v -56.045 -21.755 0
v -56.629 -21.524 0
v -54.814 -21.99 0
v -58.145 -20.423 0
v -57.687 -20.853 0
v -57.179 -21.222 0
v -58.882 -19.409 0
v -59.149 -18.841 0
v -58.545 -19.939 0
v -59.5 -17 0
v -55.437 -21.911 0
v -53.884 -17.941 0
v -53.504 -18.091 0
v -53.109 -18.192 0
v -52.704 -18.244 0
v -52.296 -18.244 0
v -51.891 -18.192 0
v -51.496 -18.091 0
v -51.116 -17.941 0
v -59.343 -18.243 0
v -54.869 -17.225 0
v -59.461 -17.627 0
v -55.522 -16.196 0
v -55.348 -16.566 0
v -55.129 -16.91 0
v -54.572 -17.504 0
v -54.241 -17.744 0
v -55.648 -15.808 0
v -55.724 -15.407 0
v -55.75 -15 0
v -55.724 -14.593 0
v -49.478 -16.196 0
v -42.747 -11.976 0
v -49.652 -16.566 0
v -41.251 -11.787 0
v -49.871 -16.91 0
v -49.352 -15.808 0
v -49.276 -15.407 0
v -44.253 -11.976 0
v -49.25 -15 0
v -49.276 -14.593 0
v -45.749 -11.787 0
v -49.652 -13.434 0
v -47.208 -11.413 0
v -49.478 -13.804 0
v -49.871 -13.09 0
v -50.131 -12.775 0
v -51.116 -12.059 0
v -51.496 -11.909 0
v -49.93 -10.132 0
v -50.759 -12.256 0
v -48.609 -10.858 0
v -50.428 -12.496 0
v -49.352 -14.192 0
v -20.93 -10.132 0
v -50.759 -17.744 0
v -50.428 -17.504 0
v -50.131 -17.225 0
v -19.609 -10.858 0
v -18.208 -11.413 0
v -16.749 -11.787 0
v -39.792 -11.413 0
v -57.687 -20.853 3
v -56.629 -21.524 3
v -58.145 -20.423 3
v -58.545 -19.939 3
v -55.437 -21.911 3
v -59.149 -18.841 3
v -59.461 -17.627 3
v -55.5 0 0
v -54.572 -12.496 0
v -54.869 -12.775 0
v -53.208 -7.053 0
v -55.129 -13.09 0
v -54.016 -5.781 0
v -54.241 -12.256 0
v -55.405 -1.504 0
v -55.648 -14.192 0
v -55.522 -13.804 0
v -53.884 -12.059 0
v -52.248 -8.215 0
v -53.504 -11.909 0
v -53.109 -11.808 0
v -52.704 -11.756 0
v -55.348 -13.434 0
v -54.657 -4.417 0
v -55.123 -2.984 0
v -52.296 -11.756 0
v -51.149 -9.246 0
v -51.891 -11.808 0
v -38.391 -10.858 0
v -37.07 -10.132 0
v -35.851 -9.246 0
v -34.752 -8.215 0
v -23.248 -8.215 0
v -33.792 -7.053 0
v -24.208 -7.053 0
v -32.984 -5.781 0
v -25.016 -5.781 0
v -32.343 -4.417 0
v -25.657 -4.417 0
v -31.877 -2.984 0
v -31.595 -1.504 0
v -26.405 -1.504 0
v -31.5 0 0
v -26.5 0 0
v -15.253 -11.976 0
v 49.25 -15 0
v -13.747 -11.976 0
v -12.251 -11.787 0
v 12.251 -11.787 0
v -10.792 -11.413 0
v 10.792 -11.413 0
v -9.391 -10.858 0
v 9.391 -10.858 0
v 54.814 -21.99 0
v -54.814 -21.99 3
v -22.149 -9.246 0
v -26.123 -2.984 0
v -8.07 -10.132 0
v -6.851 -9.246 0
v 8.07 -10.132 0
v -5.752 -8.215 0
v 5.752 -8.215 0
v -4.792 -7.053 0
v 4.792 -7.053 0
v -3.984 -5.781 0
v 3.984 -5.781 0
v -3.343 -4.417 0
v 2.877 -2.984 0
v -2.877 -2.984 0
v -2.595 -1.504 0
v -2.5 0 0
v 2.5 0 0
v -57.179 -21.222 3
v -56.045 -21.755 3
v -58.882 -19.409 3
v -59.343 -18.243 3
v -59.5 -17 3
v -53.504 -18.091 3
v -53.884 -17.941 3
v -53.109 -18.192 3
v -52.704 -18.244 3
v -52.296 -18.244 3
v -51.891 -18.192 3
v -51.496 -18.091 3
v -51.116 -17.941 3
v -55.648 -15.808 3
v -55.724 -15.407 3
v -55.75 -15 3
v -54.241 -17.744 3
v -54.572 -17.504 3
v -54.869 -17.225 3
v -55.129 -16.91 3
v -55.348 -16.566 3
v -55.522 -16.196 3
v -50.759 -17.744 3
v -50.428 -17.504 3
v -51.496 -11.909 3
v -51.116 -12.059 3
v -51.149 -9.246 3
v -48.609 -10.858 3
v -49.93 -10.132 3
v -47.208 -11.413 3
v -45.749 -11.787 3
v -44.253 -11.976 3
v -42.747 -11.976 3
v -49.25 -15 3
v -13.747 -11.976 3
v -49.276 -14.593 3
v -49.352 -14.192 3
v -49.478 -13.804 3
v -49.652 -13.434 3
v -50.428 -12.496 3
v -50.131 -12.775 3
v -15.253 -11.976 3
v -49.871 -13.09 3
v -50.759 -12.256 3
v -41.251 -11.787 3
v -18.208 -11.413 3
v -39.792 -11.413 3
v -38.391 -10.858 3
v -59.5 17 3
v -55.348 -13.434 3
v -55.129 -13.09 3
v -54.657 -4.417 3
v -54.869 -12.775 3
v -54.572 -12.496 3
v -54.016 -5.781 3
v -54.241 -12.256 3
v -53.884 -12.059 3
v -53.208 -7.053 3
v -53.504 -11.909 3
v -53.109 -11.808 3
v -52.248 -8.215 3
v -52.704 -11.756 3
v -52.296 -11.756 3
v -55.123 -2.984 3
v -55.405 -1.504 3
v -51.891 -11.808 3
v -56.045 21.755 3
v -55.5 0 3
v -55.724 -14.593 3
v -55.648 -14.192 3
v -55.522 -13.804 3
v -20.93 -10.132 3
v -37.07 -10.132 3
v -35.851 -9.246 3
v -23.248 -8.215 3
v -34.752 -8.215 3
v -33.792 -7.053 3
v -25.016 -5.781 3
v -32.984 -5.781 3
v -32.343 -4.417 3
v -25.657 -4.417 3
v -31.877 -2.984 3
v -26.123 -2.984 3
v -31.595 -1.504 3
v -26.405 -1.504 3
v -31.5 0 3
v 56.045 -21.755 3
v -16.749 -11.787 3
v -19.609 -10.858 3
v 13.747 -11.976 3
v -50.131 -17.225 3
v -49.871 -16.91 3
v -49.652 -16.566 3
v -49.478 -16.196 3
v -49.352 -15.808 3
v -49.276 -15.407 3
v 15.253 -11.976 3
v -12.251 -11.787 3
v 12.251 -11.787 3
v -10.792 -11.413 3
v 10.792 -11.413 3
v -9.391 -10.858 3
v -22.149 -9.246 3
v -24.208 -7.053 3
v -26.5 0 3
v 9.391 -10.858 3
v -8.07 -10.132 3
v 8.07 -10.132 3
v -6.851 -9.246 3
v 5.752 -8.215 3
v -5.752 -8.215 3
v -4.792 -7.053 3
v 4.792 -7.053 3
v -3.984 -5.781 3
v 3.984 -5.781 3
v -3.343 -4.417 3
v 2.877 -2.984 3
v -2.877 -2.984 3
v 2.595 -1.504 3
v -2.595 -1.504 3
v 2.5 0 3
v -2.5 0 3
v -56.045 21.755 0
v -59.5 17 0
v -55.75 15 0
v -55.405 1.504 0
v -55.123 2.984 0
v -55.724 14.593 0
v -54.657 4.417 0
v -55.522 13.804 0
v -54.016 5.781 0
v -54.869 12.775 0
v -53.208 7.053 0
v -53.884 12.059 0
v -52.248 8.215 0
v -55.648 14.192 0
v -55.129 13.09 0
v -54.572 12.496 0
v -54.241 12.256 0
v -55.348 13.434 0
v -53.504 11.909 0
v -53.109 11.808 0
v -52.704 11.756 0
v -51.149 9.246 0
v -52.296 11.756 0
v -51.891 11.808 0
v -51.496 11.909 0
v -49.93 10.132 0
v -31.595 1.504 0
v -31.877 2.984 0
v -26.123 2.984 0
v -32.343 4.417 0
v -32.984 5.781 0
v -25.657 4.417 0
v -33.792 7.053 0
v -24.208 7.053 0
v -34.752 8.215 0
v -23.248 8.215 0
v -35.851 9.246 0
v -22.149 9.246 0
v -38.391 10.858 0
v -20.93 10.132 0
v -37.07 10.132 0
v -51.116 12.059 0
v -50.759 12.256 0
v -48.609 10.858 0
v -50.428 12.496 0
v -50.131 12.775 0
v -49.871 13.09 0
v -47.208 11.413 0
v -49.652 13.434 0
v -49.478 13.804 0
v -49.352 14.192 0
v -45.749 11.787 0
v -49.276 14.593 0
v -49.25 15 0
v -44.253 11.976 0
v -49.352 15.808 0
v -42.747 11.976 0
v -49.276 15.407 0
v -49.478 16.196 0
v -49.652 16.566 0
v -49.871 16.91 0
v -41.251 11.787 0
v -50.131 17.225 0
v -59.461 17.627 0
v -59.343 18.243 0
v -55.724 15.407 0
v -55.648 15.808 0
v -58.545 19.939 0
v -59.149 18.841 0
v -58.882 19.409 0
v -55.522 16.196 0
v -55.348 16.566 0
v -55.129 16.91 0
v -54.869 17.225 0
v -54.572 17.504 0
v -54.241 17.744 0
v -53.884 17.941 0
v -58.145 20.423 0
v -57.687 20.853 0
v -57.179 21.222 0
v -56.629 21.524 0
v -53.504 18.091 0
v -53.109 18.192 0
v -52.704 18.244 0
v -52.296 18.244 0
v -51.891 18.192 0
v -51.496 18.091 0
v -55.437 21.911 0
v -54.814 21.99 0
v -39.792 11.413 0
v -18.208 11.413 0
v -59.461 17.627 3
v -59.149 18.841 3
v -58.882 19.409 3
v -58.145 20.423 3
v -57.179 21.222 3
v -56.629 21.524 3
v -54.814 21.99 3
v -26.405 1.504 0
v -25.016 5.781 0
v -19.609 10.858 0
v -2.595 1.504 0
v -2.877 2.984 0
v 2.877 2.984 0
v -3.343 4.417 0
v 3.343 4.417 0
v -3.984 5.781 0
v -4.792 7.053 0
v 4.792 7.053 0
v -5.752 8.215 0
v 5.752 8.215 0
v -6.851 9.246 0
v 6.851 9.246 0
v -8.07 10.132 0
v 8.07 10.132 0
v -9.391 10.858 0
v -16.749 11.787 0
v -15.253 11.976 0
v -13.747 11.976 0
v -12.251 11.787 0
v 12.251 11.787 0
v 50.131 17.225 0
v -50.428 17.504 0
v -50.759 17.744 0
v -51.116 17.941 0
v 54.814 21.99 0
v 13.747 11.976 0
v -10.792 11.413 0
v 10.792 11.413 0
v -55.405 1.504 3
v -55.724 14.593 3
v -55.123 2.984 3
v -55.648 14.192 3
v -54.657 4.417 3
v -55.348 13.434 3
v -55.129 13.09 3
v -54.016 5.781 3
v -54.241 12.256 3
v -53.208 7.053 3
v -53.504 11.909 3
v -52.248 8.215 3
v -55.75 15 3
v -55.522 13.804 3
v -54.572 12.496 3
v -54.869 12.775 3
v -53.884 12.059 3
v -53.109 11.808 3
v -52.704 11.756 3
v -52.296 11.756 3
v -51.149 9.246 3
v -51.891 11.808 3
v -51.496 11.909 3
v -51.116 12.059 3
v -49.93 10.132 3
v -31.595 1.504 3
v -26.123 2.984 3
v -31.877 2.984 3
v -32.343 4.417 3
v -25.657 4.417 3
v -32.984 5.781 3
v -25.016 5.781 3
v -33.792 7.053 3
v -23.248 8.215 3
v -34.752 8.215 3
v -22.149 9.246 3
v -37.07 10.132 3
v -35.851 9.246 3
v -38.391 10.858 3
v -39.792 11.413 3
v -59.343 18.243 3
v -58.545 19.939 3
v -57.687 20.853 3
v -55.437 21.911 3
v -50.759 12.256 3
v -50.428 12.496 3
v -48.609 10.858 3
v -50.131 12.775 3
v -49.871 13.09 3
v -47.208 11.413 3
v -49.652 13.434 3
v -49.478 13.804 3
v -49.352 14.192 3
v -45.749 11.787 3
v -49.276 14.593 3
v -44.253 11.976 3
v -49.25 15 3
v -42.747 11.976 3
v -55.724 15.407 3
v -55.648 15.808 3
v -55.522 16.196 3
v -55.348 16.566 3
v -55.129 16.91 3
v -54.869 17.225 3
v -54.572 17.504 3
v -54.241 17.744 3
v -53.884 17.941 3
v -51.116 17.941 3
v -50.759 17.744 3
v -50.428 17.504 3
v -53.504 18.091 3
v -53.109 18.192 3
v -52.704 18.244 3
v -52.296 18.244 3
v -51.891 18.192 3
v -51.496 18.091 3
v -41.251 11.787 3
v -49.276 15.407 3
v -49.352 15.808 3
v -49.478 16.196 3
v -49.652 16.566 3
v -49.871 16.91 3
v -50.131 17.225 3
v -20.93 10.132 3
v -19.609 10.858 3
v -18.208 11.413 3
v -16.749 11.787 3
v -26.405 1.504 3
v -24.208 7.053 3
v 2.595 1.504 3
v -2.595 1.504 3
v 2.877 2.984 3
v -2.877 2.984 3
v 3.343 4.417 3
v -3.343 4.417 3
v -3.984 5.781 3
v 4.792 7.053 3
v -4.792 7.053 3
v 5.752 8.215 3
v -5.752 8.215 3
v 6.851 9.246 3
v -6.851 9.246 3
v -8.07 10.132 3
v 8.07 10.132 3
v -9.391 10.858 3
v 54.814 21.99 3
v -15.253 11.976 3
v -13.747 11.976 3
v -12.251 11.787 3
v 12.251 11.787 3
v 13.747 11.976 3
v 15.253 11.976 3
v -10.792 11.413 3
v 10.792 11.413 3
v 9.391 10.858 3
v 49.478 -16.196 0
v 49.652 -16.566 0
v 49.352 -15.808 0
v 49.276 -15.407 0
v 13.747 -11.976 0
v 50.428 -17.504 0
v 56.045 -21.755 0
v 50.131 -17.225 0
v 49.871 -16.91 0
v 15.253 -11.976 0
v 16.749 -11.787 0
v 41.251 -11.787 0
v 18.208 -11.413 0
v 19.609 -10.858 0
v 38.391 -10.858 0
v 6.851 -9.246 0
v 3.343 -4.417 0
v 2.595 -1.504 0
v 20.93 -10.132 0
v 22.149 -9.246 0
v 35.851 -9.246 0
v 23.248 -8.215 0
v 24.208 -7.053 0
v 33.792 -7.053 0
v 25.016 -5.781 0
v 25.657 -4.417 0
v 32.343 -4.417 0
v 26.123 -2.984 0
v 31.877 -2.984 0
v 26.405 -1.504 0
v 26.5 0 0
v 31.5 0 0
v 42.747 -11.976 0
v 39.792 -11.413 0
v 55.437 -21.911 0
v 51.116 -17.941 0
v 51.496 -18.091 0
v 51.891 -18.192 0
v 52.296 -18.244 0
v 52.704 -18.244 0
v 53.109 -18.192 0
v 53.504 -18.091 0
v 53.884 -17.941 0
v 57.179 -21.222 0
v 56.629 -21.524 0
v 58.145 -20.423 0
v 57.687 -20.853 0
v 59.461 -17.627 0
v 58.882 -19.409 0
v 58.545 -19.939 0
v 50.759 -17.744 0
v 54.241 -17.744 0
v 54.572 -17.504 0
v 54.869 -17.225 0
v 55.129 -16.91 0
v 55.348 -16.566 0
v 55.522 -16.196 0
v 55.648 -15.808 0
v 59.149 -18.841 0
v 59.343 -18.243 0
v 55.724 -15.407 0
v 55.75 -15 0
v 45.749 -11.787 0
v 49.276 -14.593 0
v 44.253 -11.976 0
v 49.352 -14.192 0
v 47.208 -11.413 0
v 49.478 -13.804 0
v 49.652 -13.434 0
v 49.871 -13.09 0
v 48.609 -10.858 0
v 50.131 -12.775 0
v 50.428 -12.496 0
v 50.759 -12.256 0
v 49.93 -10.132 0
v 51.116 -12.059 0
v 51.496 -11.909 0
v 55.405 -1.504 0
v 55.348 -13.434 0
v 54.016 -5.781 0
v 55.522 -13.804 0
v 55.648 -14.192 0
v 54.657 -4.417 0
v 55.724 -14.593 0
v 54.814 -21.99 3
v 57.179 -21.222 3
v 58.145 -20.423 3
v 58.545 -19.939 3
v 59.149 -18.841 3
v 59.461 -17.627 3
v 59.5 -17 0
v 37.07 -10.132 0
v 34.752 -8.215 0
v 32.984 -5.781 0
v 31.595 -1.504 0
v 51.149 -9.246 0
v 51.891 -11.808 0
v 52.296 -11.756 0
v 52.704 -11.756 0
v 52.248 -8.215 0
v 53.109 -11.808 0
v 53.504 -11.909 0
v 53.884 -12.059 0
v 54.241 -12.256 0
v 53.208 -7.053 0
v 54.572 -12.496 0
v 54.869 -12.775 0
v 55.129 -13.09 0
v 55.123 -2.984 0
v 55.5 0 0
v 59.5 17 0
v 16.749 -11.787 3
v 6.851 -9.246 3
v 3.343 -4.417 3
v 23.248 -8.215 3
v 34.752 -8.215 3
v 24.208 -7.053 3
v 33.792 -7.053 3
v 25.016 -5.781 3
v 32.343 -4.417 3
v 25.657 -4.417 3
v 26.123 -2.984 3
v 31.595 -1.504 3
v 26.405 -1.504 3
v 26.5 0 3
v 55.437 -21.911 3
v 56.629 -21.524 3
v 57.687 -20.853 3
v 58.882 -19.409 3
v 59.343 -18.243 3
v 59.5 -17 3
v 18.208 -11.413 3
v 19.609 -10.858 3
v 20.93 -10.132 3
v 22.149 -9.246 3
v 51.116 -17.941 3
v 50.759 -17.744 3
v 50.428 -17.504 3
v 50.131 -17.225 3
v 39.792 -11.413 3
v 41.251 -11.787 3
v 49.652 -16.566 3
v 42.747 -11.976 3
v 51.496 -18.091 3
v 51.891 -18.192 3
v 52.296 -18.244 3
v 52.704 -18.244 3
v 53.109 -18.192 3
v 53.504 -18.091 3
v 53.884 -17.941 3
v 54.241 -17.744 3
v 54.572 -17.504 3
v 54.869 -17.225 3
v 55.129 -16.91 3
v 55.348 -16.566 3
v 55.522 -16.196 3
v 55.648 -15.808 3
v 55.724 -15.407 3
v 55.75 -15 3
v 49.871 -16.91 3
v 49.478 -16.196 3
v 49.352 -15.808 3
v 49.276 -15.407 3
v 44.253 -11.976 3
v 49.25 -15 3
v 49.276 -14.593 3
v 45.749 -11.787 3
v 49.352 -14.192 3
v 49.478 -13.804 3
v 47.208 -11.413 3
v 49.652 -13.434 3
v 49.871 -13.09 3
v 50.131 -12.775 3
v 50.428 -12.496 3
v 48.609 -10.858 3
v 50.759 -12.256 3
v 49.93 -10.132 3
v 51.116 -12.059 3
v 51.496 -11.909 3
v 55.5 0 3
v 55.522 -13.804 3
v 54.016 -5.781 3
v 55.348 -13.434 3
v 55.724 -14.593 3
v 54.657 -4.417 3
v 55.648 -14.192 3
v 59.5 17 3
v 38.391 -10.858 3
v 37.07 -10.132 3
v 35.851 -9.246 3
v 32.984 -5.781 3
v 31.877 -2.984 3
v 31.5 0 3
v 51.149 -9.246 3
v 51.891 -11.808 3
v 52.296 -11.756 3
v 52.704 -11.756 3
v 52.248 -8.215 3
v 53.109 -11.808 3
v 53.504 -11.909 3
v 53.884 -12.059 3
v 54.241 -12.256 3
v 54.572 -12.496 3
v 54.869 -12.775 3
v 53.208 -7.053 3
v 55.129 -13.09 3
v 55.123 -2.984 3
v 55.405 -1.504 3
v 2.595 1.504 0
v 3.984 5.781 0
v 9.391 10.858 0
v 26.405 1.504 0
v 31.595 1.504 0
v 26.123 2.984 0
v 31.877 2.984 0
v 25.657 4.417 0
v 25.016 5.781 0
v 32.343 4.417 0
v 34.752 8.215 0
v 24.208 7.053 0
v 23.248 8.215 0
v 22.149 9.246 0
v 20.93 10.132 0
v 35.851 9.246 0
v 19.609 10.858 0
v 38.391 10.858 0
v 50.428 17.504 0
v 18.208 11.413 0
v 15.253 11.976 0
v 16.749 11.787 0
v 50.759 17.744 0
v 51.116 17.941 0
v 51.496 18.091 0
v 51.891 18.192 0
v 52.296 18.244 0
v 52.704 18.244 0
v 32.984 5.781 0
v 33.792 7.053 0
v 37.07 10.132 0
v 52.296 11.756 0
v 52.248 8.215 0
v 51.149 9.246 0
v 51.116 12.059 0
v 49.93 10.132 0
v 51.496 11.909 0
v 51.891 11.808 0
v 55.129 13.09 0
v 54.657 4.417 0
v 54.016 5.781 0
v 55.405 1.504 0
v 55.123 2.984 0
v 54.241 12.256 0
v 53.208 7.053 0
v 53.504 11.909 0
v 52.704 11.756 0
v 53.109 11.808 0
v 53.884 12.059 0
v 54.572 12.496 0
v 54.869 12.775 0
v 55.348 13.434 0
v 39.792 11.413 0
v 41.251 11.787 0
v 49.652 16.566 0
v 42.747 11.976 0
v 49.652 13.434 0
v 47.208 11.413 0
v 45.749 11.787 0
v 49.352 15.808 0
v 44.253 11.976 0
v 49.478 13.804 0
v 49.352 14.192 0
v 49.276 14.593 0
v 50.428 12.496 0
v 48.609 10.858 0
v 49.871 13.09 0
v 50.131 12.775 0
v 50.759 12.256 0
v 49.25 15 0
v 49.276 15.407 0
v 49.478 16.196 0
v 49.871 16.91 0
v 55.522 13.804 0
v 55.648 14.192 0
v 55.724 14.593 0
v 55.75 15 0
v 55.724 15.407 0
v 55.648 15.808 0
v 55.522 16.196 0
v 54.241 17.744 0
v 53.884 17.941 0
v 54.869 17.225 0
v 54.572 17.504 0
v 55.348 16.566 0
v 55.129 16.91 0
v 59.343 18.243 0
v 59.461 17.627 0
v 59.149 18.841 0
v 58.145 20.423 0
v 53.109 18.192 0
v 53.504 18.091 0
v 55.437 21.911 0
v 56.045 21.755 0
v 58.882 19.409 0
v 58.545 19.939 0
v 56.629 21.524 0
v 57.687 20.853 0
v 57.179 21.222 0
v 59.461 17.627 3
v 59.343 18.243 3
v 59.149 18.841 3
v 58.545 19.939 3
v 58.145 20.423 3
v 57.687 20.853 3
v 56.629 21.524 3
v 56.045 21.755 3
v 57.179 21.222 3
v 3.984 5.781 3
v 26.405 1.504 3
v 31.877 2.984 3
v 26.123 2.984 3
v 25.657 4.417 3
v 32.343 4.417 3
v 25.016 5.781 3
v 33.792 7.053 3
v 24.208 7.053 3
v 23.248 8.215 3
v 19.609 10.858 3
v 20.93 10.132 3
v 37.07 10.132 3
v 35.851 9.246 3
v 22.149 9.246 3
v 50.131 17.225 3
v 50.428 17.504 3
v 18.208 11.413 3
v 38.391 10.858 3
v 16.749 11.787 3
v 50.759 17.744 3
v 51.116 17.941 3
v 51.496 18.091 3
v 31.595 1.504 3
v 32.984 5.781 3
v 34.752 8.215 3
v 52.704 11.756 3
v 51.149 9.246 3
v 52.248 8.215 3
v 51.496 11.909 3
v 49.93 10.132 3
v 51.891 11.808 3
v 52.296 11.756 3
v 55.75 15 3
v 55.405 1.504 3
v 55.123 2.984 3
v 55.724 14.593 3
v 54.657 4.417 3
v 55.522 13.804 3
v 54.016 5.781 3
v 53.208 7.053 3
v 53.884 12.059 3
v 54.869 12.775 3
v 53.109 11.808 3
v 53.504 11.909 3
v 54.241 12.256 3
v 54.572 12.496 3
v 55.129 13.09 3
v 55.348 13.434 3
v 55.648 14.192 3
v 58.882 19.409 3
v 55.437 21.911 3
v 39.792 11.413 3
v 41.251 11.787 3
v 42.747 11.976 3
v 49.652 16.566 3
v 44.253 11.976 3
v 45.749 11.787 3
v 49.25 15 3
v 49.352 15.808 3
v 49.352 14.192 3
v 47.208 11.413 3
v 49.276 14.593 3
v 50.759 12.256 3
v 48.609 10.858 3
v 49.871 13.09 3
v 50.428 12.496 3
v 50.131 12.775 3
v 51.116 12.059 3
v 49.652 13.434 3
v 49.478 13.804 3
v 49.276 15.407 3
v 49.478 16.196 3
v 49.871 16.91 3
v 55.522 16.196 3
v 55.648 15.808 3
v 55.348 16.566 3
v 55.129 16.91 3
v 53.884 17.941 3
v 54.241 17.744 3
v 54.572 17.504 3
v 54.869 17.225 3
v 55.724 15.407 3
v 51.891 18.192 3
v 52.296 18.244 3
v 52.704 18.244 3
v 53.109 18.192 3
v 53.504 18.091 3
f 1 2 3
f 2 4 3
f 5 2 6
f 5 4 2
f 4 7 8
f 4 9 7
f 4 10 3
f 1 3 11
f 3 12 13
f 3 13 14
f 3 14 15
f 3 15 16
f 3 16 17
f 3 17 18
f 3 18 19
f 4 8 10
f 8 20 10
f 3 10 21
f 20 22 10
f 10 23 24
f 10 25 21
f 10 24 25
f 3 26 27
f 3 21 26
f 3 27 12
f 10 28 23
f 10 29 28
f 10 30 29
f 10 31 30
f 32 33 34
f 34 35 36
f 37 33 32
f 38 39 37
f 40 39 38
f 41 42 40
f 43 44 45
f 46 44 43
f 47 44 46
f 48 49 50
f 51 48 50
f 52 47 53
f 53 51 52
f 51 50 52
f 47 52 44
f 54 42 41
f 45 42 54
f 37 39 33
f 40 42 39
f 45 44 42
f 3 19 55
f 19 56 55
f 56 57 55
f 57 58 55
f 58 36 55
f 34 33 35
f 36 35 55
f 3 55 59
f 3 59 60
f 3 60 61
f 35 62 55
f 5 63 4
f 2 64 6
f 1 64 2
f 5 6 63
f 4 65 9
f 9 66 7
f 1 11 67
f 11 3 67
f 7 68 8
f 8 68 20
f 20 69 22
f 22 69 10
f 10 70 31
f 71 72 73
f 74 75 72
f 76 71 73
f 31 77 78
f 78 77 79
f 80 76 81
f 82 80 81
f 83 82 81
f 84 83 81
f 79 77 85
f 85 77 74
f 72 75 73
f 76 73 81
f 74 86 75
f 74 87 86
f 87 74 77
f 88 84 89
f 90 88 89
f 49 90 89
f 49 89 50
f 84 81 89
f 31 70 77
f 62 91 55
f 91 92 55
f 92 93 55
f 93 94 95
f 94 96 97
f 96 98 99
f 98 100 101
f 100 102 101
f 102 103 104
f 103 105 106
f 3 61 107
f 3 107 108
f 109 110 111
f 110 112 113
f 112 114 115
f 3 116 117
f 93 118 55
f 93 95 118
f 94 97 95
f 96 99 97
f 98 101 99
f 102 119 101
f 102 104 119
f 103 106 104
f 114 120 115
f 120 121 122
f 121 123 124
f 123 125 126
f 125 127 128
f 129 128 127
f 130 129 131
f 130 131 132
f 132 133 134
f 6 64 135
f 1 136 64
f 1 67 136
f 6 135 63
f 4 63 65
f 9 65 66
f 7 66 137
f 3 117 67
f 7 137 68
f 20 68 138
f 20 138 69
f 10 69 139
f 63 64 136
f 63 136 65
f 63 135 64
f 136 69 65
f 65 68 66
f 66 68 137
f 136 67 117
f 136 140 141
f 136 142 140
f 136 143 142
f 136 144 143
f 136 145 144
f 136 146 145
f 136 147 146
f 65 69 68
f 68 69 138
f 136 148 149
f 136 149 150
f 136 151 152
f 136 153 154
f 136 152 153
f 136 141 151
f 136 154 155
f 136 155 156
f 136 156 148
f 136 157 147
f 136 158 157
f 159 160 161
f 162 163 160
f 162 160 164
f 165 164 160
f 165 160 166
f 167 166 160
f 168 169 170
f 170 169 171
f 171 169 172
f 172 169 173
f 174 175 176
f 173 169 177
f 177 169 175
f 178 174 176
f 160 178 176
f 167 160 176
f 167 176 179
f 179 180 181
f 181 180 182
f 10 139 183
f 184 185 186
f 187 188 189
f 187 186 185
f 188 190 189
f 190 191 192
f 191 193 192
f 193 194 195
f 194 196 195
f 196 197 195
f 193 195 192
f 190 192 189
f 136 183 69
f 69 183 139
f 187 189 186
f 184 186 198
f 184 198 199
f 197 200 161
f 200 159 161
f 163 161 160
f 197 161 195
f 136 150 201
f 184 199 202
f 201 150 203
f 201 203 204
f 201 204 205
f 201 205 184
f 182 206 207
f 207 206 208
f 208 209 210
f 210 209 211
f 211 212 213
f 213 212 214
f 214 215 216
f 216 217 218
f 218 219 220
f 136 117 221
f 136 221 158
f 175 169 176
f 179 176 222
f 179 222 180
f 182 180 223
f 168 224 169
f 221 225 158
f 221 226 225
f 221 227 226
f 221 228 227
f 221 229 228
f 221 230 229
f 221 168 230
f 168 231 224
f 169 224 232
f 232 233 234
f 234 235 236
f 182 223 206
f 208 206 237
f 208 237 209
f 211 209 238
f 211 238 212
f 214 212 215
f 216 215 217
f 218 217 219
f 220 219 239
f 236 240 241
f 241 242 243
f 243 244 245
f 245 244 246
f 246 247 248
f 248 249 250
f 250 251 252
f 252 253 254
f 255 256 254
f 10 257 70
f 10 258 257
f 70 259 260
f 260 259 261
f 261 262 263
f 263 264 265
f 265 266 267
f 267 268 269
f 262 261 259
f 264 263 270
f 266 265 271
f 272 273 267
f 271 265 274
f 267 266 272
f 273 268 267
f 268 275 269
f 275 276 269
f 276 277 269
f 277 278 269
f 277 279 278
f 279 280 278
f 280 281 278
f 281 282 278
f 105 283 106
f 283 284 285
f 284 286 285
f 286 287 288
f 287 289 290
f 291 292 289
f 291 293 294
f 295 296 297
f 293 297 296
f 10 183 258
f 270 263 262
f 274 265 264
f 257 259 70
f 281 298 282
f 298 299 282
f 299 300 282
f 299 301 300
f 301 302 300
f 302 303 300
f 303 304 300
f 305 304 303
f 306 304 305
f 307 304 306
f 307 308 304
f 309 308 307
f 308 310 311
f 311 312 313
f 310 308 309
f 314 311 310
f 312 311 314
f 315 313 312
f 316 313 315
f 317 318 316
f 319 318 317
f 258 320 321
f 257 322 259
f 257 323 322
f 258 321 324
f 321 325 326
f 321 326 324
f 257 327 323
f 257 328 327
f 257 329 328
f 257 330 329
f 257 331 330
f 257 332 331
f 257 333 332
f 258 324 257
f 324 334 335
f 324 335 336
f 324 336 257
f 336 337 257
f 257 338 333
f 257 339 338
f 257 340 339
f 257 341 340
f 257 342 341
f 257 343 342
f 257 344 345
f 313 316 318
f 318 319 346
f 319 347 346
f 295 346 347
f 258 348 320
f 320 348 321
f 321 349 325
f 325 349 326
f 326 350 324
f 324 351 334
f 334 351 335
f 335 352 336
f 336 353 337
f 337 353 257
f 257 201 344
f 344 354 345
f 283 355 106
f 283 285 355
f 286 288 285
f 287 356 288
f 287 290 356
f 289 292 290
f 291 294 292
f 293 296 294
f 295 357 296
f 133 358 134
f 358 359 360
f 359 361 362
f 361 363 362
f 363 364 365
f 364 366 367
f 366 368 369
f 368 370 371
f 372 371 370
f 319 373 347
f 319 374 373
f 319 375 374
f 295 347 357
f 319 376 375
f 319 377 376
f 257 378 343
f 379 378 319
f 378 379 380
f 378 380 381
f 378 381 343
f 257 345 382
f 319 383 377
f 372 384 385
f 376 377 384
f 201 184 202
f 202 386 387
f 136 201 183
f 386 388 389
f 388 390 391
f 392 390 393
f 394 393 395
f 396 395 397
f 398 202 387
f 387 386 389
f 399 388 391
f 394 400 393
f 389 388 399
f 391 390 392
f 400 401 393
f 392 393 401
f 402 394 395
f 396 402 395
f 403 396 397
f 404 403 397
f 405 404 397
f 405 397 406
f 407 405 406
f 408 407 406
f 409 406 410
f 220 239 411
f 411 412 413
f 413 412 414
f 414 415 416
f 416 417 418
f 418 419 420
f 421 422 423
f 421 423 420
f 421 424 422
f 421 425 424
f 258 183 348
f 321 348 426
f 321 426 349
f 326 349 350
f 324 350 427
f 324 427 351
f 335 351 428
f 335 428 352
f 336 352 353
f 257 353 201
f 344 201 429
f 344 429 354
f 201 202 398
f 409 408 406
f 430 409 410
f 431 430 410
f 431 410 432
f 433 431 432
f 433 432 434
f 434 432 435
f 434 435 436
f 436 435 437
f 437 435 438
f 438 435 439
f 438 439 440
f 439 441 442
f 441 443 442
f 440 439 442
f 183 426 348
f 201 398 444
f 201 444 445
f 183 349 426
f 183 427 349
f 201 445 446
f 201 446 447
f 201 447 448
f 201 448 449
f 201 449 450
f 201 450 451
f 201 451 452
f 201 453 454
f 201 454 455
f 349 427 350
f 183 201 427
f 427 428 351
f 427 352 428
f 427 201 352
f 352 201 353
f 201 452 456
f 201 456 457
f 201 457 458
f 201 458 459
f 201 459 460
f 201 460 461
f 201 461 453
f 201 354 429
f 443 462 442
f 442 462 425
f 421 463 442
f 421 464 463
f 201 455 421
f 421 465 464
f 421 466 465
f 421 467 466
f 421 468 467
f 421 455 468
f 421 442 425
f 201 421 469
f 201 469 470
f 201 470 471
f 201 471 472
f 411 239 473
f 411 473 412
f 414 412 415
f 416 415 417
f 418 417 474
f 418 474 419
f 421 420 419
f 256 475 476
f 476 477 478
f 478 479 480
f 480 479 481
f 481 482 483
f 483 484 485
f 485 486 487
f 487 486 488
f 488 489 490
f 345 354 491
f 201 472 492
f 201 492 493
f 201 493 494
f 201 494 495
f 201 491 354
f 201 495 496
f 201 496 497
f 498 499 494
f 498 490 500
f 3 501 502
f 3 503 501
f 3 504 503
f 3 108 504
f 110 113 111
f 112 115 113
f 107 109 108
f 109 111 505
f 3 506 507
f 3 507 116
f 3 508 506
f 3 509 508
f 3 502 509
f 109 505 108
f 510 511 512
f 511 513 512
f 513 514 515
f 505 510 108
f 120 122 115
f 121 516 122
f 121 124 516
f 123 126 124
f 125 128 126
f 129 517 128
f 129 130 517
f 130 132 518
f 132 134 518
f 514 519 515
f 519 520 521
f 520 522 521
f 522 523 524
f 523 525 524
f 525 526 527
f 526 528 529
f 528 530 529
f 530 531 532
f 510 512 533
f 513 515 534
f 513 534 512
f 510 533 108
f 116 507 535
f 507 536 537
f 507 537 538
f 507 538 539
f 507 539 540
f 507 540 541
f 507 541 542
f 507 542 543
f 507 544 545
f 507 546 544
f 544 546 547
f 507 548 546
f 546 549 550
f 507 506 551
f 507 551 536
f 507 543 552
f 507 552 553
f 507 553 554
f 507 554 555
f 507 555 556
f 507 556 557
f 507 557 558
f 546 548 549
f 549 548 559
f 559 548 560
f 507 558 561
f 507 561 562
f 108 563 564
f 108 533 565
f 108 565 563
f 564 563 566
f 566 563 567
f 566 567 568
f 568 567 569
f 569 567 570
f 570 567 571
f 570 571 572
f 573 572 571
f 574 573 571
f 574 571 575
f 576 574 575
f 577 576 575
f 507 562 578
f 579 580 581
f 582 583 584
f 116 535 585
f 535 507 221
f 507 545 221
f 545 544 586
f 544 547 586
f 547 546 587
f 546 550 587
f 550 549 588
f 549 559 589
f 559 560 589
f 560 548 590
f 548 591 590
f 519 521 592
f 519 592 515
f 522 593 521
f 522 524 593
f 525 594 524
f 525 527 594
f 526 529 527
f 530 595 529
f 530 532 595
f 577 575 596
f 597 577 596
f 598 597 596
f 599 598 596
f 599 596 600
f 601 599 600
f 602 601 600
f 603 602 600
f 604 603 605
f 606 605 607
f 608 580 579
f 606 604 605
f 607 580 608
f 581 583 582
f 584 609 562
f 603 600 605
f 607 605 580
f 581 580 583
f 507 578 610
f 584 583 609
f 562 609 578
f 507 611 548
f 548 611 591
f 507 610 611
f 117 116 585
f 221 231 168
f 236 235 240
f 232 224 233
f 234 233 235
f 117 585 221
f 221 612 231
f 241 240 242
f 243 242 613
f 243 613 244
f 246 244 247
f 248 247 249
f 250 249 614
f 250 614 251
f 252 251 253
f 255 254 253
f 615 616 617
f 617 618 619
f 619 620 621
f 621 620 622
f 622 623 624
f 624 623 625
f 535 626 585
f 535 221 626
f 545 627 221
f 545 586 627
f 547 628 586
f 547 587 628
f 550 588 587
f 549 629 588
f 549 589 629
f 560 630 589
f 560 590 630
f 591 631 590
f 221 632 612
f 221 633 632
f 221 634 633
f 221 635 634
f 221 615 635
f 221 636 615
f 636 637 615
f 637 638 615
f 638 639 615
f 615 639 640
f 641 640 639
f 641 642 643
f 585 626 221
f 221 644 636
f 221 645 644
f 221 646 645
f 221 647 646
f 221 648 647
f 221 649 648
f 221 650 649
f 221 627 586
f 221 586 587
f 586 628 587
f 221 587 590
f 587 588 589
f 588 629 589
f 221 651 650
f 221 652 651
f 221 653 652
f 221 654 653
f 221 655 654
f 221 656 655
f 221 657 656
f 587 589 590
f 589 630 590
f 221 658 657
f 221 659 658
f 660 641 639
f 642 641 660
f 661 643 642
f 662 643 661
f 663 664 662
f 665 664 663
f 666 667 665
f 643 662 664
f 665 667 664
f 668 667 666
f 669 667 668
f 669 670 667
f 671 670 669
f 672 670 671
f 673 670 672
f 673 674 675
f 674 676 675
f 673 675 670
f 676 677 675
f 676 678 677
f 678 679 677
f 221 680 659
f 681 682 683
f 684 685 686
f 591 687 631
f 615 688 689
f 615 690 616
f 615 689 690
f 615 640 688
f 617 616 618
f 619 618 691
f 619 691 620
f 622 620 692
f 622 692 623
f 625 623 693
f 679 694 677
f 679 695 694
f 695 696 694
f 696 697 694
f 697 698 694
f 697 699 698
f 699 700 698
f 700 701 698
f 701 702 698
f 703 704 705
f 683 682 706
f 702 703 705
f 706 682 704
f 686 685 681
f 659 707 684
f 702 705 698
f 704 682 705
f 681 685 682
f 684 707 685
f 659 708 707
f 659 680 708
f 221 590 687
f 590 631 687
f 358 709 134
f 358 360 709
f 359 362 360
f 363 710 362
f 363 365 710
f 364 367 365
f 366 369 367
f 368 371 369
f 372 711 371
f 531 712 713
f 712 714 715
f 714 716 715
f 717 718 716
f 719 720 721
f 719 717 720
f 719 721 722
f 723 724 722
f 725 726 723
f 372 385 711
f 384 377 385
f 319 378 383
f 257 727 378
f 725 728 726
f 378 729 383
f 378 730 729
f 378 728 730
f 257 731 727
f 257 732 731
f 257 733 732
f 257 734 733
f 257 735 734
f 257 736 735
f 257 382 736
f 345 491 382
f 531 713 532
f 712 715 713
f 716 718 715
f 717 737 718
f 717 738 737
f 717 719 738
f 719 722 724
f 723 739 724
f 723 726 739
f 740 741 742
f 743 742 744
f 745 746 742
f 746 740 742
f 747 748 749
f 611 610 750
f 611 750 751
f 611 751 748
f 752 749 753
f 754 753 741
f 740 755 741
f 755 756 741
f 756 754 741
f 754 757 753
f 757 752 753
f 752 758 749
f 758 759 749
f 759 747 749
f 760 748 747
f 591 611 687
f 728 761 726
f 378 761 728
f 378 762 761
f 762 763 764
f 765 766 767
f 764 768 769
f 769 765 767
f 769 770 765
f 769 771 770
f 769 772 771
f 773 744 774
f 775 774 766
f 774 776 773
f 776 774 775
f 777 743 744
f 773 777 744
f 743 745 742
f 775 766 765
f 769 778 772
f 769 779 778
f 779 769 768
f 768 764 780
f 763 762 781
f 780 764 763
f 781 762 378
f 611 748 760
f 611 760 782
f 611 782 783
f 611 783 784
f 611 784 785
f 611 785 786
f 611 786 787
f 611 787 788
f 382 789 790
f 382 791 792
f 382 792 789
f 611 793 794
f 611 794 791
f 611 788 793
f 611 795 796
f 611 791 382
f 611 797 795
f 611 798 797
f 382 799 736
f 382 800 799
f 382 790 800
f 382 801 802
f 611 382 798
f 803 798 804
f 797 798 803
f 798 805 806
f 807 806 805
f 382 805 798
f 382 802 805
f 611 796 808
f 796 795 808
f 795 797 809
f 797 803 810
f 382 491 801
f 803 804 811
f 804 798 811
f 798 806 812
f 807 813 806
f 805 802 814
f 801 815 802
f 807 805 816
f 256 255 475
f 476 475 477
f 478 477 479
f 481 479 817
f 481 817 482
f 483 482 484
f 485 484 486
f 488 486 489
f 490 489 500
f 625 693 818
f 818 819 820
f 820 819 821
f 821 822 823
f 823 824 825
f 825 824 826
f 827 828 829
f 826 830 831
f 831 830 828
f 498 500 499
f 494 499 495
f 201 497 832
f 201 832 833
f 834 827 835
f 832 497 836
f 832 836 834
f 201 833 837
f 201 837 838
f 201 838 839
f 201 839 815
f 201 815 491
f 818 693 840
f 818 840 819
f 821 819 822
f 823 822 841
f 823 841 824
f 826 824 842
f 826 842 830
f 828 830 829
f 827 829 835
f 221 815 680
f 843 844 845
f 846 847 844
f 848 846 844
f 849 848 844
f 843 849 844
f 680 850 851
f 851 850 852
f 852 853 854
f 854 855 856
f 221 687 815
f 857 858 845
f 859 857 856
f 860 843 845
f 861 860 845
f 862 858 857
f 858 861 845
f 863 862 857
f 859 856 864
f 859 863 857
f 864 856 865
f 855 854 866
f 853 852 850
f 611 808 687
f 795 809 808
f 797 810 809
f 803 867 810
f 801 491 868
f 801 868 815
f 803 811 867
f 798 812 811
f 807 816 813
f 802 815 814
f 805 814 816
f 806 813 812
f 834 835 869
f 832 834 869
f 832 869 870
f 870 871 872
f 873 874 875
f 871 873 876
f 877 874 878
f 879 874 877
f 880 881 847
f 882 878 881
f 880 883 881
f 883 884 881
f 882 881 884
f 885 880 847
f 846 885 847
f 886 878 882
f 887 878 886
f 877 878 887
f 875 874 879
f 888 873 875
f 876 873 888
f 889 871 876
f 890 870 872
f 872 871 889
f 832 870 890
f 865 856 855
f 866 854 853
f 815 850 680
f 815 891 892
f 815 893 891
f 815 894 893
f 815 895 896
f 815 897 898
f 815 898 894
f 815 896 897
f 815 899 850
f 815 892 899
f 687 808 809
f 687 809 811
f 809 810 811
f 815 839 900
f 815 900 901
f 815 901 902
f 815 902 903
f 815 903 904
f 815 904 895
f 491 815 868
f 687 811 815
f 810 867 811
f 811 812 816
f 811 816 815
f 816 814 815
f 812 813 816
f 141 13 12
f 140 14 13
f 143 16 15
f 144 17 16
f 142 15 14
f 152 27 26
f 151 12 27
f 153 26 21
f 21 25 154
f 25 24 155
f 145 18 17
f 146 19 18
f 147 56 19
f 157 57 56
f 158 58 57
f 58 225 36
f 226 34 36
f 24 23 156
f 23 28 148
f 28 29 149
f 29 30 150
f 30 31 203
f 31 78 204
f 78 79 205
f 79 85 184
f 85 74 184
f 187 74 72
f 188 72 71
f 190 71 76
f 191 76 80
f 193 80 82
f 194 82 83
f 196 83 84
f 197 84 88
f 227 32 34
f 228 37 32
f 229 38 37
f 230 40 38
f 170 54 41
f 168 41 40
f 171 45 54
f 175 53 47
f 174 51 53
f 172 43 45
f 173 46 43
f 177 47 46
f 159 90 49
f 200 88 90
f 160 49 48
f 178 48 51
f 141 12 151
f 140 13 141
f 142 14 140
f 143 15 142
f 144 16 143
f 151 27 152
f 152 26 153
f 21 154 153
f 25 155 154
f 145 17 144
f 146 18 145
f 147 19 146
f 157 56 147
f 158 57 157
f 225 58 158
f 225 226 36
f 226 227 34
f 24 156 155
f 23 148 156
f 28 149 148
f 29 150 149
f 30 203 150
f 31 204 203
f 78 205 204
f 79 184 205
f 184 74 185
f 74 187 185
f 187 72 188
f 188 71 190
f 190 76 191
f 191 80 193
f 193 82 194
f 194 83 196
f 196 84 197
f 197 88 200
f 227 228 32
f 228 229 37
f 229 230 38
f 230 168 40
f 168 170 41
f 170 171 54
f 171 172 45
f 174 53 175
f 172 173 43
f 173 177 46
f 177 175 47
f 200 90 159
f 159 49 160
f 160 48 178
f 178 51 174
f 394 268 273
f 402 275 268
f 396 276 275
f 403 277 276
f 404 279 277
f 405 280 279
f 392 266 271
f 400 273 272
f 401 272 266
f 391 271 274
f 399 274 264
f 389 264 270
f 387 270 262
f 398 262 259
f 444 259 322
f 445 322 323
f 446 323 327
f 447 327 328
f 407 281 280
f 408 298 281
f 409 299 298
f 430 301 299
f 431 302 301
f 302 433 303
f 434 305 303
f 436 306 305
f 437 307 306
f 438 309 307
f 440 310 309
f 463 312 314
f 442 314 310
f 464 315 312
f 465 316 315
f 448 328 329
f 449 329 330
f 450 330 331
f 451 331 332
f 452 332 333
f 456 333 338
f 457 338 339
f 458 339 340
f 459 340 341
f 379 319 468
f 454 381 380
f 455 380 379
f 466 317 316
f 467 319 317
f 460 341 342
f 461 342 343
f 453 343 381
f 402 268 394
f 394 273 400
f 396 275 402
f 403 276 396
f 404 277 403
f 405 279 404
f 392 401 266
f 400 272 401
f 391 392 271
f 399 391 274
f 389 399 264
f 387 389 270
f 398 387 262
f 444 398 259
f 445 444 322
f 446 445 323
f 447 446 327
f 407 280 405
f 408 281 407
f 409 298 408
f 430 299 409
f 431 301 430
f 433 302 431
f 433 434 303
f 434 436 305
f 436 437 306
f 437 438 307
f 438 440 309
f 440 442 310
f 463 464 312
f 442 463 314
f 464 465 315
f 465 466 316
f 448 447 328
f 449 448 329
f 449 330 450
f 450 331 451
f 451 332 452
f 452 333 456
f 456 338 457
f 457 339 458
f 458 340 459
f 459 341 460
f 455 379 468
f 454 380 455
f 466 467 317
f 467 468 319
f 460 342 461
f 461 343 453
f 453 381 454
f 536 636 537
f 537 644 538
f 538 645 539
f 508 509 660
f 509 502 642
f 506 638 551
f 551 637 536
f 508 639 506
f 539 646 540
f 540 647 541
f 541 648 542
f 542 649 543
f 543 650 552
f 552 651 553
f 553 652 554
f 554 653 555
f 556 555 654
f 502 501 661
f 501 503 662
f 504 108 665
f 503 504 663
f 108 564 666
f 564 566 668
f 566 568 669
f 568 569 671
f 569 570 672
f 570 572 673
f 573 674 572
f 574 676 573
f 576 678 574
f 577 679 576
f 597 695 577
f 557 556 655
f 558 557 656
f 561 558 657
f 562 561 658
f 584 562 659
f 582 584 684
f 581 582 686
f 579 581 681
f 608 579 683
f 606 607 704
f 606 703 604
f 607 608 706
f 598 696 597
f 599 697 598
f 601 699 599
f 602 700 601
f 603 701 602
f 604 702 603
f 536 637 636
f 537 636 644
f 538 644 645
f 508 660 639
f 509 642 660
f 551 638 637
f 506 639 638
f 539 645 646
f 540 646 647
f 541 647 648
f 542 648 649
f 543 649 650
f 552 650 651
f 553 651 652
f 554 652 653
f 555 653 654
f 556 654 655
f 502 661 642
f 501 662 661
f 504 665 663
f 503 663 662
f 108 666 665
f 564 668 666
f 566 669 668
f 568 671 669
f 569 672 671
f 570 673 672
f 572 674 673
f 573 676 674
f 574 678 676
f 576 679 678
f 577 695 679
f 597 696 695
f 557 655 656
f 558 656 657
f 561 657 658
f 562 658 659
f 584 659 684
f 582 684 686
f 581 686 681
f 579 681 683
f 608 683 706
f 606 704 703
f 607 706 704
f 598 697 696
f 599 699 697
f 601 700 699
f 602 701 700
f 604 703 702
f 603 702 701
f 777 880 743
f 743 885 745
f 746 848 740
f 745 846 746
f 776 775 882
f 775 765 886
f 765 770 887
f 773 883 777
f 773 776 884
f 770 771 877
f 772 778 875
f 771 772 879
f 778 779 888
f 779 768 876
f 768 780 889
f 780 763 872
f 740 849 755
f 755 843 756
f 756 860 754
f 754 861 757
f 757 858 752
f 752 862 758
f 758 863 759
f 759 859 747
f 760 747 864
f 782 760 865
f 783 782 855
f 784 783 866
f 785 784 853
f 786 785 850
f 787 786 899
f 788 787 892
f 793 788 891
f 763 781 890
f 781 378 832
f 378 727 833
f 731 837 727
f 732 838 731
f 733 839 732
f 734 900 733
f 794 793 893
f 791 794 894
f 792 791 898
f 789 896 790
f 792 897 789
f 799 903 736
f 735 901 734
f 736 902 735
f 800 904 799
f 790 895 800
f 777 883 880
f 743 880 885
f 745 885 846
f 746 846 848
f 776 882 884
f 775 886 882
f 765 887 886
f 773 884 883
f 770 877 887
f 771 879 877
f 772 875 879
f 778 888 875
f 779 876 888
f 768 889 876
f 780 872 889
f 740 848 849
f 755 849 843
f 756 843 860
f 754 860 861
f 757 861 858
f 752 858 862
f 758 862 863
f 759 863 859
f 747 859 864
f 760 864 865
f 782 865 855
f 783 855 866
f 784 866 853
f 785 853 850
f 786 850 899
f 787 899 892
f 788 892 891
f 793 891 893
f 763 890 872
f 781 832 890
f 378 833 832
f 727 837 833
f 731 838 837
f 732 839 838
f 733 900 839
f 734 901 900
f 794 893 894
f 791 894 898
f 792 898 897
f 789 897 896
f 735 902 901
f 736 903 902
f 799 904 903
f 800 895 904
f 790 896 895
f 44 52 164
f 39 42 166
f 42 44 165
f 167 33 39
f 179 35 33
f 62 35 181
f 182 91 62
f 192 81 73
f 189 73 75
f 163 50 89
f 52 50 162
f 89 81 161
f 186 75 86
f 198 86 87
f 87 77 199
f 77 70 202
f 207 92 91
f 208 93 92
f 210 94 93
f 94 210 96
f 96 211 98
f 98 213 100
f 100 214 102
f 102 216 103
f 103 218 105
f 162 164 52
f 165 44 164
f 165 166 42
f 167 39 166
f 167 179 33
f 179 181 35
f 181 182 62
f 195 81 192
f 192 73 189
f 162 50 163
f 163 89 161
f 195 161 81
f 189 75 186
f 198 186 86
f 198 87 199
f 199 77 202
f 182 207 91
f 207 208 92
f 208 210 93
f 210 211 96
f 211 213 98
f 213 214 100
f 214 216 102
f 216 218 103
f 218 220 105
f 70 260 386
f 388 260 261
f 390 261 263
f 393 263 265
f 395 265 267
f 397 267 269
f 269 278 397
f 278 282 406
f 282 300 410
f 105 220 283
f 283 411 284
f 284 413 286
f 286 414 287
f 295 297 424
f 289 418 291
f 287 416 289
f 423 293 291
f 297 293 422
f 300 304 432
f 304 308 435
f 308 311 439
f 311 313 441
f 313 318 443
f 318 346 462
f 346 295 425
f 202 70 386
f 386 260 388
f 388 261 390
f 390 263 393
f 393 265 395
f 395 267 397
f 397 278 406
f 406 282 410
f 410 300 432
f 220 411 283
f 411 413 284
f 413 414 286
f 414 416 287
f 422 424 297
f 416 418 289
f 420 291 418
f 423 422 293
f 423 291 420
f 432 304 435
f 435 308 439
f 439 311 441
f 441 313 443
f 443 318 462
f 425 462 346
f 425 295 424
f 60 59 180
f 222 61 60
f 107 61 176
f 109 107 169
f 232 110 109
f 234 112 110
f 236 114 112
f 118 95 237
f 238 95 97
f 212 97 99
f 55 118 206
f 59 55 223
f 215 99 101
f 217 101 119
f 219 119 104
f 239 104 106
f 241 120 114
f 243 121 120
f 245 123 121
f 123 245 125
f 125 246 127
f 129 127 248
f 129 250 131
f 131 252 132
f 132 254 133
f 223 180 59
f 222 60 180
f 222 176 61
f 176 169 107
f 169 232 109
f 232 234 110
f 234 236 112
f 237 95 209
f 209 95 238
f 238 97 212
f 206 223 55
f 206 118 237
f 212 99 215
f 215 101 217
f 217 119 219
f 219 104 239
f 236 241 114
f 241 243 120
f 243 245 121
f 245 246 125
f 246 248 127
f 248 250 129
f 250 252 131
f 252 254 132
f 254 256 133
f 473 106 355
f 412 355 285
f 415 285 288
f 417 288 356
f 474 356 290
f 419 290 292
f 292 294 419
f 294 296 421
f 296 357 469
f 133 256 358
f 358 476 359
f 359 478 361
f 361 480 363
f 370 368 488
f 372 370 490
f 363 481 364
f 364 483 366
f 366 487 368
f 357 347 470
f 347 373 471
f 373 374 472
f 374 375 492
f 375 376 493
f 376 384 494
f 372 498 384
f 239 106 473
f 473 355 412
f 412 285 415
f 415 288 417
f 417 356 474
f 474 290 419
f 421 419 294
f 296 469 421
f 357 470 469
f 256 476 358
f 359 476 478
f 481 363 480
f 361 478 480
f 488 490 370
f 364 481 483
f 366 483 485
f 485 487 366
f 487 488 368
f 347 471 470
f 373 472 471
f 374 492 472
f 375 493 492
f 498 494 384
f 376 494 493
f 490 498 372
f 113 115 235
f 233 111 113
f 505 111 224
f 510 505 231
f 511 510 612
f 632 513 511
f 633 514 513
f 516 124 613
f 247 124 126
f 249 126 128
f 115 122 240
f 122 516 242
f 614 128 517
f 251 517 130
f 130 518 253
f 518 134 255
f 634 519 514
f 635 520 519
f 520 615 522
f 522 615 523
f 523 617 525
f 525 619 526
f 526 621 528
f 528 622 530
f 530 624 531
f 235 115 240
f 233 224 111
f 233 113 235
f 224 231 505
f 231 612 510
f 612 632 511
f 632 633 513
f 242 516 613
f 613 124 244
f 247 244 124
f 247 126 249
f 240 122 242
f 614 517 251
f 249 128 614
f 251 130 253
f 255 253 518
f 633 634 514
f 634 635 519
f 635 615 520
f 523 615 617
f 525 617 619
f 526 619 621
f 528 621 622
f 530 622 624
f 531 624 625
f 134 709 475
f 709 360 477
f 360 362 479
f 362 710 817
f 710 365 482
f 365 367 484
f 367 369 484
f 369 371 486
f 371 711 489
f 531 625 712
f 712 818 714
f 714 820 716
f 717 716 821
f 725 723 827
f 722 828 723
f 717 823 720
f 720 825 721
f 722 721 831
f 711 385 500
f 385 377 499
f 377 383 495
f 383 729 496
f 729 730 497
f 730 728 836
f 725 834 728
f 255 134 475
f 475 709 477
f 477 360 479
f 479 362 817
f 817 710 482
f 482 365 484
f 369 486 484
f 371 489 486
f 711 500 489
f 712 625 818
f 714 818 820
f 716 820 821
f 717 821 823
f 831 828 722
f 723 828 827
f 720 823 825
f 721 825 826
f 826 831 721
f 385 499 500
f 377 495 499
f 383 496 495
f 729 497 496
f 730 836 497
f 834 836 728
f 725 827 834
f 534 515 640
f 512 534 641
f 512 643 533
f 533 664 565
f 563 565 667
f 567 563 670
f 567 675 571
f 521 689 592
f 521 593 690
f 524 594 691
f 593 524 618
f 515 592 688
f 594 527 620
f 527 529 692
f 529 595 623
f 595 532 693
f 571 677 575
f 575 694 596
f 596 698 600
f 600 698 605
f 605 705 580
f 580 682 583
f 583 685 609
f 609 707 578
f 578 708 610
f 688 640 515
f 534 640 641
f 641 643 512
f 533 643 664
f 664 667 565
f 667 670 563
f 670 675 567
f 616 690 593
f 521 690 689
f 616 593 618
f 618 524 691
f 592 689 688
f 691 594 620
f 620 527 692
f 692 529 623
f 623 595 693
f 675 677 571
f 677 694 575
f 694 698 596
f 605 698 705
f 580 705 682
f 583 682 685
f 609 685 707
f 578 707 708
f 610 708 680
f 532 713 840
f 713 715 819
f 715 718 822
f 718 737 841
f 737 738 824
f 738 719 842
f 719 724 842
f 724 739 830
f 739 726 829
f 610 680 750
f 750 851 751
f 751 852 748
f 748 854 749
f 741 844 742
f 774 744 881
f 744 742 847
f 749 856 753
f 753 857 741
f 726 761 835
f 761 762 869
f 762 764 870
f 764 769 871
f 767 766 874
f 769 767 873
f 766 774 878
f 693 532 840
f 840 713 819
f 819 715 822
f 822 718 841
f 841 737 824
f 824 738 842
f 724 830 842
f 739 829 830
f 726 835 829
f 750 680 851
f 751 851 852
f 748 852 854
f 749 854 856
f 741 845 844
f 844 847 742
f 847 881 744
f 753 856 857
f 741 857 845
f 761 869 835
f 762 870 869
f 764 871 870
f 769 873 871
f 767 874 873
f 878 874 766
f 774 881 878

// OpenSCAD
$fn = 50;

difference() {
	union() {
		hull() {
			translate(v = [-54.5, 17.0, 0]) {
				cylinder(h = 3, r = 5);
			}
			translate(v = [54.5, 17.0, 0]) {
				cylinder(h = 3, r = 5);
			}
			translate(v = [-54.5, -17.0, 0]) {
				cylinder(h = 3, r = 5);
			}
			translate(v = [54.5, -17.0, 0]) {
				cylinder(h = 3, r = 5);
			}
		}
	}
	union() {
		translate(v = [-52.5, -15.0, -100.0]) {
			cylinder(h = 200, r = 3.25);
		}
		translate(v = [-52.5, 15.0, -100.0]) {
			cylinder(h = 200, r = 3.25);
		}
		translate(v = [52.5, -15.0, -100.0]) {
			cylinder(h = 200, r = 3.25);
		}
		translate(v = [52.5, 15.0, -100.0]) {
			cylinder(h = 200, r = 3.25);
		}
		translate(v = [-52.5, -15.0, -100.0]) {
			cylinder(h = 200, r = 1.8);
		}
		translate(v = [-52.5, 15.0, -100.0]) {
			cylinder(h = 200, r = 1.8);
		}
		translate(v = [52.5, -15.0, -100.0]) {
			cylinder(h = 200, r = 1.8);
		}
		translate(v = [52.5, 15.0, -100.0]) {
			cylinder(h = 200, r = 1.8);
		}
		translate(v = [-43.5, 0, 0.0]) {
			cylinder(h = 3, r = 12.0);
		}
		translate(v = [-14.5, 0, 0.0]) {
			cylinder(h = 3, r = 12.0);
		}
		translate(v = [14.5, 0, 0.0]) {
			cylinder(h = 3, r = 12.0);
		}
		translate(v = [43.5, 0, 0.0]) {
			cylinder(h = 3, r = 12.0);
		}
	}
}
